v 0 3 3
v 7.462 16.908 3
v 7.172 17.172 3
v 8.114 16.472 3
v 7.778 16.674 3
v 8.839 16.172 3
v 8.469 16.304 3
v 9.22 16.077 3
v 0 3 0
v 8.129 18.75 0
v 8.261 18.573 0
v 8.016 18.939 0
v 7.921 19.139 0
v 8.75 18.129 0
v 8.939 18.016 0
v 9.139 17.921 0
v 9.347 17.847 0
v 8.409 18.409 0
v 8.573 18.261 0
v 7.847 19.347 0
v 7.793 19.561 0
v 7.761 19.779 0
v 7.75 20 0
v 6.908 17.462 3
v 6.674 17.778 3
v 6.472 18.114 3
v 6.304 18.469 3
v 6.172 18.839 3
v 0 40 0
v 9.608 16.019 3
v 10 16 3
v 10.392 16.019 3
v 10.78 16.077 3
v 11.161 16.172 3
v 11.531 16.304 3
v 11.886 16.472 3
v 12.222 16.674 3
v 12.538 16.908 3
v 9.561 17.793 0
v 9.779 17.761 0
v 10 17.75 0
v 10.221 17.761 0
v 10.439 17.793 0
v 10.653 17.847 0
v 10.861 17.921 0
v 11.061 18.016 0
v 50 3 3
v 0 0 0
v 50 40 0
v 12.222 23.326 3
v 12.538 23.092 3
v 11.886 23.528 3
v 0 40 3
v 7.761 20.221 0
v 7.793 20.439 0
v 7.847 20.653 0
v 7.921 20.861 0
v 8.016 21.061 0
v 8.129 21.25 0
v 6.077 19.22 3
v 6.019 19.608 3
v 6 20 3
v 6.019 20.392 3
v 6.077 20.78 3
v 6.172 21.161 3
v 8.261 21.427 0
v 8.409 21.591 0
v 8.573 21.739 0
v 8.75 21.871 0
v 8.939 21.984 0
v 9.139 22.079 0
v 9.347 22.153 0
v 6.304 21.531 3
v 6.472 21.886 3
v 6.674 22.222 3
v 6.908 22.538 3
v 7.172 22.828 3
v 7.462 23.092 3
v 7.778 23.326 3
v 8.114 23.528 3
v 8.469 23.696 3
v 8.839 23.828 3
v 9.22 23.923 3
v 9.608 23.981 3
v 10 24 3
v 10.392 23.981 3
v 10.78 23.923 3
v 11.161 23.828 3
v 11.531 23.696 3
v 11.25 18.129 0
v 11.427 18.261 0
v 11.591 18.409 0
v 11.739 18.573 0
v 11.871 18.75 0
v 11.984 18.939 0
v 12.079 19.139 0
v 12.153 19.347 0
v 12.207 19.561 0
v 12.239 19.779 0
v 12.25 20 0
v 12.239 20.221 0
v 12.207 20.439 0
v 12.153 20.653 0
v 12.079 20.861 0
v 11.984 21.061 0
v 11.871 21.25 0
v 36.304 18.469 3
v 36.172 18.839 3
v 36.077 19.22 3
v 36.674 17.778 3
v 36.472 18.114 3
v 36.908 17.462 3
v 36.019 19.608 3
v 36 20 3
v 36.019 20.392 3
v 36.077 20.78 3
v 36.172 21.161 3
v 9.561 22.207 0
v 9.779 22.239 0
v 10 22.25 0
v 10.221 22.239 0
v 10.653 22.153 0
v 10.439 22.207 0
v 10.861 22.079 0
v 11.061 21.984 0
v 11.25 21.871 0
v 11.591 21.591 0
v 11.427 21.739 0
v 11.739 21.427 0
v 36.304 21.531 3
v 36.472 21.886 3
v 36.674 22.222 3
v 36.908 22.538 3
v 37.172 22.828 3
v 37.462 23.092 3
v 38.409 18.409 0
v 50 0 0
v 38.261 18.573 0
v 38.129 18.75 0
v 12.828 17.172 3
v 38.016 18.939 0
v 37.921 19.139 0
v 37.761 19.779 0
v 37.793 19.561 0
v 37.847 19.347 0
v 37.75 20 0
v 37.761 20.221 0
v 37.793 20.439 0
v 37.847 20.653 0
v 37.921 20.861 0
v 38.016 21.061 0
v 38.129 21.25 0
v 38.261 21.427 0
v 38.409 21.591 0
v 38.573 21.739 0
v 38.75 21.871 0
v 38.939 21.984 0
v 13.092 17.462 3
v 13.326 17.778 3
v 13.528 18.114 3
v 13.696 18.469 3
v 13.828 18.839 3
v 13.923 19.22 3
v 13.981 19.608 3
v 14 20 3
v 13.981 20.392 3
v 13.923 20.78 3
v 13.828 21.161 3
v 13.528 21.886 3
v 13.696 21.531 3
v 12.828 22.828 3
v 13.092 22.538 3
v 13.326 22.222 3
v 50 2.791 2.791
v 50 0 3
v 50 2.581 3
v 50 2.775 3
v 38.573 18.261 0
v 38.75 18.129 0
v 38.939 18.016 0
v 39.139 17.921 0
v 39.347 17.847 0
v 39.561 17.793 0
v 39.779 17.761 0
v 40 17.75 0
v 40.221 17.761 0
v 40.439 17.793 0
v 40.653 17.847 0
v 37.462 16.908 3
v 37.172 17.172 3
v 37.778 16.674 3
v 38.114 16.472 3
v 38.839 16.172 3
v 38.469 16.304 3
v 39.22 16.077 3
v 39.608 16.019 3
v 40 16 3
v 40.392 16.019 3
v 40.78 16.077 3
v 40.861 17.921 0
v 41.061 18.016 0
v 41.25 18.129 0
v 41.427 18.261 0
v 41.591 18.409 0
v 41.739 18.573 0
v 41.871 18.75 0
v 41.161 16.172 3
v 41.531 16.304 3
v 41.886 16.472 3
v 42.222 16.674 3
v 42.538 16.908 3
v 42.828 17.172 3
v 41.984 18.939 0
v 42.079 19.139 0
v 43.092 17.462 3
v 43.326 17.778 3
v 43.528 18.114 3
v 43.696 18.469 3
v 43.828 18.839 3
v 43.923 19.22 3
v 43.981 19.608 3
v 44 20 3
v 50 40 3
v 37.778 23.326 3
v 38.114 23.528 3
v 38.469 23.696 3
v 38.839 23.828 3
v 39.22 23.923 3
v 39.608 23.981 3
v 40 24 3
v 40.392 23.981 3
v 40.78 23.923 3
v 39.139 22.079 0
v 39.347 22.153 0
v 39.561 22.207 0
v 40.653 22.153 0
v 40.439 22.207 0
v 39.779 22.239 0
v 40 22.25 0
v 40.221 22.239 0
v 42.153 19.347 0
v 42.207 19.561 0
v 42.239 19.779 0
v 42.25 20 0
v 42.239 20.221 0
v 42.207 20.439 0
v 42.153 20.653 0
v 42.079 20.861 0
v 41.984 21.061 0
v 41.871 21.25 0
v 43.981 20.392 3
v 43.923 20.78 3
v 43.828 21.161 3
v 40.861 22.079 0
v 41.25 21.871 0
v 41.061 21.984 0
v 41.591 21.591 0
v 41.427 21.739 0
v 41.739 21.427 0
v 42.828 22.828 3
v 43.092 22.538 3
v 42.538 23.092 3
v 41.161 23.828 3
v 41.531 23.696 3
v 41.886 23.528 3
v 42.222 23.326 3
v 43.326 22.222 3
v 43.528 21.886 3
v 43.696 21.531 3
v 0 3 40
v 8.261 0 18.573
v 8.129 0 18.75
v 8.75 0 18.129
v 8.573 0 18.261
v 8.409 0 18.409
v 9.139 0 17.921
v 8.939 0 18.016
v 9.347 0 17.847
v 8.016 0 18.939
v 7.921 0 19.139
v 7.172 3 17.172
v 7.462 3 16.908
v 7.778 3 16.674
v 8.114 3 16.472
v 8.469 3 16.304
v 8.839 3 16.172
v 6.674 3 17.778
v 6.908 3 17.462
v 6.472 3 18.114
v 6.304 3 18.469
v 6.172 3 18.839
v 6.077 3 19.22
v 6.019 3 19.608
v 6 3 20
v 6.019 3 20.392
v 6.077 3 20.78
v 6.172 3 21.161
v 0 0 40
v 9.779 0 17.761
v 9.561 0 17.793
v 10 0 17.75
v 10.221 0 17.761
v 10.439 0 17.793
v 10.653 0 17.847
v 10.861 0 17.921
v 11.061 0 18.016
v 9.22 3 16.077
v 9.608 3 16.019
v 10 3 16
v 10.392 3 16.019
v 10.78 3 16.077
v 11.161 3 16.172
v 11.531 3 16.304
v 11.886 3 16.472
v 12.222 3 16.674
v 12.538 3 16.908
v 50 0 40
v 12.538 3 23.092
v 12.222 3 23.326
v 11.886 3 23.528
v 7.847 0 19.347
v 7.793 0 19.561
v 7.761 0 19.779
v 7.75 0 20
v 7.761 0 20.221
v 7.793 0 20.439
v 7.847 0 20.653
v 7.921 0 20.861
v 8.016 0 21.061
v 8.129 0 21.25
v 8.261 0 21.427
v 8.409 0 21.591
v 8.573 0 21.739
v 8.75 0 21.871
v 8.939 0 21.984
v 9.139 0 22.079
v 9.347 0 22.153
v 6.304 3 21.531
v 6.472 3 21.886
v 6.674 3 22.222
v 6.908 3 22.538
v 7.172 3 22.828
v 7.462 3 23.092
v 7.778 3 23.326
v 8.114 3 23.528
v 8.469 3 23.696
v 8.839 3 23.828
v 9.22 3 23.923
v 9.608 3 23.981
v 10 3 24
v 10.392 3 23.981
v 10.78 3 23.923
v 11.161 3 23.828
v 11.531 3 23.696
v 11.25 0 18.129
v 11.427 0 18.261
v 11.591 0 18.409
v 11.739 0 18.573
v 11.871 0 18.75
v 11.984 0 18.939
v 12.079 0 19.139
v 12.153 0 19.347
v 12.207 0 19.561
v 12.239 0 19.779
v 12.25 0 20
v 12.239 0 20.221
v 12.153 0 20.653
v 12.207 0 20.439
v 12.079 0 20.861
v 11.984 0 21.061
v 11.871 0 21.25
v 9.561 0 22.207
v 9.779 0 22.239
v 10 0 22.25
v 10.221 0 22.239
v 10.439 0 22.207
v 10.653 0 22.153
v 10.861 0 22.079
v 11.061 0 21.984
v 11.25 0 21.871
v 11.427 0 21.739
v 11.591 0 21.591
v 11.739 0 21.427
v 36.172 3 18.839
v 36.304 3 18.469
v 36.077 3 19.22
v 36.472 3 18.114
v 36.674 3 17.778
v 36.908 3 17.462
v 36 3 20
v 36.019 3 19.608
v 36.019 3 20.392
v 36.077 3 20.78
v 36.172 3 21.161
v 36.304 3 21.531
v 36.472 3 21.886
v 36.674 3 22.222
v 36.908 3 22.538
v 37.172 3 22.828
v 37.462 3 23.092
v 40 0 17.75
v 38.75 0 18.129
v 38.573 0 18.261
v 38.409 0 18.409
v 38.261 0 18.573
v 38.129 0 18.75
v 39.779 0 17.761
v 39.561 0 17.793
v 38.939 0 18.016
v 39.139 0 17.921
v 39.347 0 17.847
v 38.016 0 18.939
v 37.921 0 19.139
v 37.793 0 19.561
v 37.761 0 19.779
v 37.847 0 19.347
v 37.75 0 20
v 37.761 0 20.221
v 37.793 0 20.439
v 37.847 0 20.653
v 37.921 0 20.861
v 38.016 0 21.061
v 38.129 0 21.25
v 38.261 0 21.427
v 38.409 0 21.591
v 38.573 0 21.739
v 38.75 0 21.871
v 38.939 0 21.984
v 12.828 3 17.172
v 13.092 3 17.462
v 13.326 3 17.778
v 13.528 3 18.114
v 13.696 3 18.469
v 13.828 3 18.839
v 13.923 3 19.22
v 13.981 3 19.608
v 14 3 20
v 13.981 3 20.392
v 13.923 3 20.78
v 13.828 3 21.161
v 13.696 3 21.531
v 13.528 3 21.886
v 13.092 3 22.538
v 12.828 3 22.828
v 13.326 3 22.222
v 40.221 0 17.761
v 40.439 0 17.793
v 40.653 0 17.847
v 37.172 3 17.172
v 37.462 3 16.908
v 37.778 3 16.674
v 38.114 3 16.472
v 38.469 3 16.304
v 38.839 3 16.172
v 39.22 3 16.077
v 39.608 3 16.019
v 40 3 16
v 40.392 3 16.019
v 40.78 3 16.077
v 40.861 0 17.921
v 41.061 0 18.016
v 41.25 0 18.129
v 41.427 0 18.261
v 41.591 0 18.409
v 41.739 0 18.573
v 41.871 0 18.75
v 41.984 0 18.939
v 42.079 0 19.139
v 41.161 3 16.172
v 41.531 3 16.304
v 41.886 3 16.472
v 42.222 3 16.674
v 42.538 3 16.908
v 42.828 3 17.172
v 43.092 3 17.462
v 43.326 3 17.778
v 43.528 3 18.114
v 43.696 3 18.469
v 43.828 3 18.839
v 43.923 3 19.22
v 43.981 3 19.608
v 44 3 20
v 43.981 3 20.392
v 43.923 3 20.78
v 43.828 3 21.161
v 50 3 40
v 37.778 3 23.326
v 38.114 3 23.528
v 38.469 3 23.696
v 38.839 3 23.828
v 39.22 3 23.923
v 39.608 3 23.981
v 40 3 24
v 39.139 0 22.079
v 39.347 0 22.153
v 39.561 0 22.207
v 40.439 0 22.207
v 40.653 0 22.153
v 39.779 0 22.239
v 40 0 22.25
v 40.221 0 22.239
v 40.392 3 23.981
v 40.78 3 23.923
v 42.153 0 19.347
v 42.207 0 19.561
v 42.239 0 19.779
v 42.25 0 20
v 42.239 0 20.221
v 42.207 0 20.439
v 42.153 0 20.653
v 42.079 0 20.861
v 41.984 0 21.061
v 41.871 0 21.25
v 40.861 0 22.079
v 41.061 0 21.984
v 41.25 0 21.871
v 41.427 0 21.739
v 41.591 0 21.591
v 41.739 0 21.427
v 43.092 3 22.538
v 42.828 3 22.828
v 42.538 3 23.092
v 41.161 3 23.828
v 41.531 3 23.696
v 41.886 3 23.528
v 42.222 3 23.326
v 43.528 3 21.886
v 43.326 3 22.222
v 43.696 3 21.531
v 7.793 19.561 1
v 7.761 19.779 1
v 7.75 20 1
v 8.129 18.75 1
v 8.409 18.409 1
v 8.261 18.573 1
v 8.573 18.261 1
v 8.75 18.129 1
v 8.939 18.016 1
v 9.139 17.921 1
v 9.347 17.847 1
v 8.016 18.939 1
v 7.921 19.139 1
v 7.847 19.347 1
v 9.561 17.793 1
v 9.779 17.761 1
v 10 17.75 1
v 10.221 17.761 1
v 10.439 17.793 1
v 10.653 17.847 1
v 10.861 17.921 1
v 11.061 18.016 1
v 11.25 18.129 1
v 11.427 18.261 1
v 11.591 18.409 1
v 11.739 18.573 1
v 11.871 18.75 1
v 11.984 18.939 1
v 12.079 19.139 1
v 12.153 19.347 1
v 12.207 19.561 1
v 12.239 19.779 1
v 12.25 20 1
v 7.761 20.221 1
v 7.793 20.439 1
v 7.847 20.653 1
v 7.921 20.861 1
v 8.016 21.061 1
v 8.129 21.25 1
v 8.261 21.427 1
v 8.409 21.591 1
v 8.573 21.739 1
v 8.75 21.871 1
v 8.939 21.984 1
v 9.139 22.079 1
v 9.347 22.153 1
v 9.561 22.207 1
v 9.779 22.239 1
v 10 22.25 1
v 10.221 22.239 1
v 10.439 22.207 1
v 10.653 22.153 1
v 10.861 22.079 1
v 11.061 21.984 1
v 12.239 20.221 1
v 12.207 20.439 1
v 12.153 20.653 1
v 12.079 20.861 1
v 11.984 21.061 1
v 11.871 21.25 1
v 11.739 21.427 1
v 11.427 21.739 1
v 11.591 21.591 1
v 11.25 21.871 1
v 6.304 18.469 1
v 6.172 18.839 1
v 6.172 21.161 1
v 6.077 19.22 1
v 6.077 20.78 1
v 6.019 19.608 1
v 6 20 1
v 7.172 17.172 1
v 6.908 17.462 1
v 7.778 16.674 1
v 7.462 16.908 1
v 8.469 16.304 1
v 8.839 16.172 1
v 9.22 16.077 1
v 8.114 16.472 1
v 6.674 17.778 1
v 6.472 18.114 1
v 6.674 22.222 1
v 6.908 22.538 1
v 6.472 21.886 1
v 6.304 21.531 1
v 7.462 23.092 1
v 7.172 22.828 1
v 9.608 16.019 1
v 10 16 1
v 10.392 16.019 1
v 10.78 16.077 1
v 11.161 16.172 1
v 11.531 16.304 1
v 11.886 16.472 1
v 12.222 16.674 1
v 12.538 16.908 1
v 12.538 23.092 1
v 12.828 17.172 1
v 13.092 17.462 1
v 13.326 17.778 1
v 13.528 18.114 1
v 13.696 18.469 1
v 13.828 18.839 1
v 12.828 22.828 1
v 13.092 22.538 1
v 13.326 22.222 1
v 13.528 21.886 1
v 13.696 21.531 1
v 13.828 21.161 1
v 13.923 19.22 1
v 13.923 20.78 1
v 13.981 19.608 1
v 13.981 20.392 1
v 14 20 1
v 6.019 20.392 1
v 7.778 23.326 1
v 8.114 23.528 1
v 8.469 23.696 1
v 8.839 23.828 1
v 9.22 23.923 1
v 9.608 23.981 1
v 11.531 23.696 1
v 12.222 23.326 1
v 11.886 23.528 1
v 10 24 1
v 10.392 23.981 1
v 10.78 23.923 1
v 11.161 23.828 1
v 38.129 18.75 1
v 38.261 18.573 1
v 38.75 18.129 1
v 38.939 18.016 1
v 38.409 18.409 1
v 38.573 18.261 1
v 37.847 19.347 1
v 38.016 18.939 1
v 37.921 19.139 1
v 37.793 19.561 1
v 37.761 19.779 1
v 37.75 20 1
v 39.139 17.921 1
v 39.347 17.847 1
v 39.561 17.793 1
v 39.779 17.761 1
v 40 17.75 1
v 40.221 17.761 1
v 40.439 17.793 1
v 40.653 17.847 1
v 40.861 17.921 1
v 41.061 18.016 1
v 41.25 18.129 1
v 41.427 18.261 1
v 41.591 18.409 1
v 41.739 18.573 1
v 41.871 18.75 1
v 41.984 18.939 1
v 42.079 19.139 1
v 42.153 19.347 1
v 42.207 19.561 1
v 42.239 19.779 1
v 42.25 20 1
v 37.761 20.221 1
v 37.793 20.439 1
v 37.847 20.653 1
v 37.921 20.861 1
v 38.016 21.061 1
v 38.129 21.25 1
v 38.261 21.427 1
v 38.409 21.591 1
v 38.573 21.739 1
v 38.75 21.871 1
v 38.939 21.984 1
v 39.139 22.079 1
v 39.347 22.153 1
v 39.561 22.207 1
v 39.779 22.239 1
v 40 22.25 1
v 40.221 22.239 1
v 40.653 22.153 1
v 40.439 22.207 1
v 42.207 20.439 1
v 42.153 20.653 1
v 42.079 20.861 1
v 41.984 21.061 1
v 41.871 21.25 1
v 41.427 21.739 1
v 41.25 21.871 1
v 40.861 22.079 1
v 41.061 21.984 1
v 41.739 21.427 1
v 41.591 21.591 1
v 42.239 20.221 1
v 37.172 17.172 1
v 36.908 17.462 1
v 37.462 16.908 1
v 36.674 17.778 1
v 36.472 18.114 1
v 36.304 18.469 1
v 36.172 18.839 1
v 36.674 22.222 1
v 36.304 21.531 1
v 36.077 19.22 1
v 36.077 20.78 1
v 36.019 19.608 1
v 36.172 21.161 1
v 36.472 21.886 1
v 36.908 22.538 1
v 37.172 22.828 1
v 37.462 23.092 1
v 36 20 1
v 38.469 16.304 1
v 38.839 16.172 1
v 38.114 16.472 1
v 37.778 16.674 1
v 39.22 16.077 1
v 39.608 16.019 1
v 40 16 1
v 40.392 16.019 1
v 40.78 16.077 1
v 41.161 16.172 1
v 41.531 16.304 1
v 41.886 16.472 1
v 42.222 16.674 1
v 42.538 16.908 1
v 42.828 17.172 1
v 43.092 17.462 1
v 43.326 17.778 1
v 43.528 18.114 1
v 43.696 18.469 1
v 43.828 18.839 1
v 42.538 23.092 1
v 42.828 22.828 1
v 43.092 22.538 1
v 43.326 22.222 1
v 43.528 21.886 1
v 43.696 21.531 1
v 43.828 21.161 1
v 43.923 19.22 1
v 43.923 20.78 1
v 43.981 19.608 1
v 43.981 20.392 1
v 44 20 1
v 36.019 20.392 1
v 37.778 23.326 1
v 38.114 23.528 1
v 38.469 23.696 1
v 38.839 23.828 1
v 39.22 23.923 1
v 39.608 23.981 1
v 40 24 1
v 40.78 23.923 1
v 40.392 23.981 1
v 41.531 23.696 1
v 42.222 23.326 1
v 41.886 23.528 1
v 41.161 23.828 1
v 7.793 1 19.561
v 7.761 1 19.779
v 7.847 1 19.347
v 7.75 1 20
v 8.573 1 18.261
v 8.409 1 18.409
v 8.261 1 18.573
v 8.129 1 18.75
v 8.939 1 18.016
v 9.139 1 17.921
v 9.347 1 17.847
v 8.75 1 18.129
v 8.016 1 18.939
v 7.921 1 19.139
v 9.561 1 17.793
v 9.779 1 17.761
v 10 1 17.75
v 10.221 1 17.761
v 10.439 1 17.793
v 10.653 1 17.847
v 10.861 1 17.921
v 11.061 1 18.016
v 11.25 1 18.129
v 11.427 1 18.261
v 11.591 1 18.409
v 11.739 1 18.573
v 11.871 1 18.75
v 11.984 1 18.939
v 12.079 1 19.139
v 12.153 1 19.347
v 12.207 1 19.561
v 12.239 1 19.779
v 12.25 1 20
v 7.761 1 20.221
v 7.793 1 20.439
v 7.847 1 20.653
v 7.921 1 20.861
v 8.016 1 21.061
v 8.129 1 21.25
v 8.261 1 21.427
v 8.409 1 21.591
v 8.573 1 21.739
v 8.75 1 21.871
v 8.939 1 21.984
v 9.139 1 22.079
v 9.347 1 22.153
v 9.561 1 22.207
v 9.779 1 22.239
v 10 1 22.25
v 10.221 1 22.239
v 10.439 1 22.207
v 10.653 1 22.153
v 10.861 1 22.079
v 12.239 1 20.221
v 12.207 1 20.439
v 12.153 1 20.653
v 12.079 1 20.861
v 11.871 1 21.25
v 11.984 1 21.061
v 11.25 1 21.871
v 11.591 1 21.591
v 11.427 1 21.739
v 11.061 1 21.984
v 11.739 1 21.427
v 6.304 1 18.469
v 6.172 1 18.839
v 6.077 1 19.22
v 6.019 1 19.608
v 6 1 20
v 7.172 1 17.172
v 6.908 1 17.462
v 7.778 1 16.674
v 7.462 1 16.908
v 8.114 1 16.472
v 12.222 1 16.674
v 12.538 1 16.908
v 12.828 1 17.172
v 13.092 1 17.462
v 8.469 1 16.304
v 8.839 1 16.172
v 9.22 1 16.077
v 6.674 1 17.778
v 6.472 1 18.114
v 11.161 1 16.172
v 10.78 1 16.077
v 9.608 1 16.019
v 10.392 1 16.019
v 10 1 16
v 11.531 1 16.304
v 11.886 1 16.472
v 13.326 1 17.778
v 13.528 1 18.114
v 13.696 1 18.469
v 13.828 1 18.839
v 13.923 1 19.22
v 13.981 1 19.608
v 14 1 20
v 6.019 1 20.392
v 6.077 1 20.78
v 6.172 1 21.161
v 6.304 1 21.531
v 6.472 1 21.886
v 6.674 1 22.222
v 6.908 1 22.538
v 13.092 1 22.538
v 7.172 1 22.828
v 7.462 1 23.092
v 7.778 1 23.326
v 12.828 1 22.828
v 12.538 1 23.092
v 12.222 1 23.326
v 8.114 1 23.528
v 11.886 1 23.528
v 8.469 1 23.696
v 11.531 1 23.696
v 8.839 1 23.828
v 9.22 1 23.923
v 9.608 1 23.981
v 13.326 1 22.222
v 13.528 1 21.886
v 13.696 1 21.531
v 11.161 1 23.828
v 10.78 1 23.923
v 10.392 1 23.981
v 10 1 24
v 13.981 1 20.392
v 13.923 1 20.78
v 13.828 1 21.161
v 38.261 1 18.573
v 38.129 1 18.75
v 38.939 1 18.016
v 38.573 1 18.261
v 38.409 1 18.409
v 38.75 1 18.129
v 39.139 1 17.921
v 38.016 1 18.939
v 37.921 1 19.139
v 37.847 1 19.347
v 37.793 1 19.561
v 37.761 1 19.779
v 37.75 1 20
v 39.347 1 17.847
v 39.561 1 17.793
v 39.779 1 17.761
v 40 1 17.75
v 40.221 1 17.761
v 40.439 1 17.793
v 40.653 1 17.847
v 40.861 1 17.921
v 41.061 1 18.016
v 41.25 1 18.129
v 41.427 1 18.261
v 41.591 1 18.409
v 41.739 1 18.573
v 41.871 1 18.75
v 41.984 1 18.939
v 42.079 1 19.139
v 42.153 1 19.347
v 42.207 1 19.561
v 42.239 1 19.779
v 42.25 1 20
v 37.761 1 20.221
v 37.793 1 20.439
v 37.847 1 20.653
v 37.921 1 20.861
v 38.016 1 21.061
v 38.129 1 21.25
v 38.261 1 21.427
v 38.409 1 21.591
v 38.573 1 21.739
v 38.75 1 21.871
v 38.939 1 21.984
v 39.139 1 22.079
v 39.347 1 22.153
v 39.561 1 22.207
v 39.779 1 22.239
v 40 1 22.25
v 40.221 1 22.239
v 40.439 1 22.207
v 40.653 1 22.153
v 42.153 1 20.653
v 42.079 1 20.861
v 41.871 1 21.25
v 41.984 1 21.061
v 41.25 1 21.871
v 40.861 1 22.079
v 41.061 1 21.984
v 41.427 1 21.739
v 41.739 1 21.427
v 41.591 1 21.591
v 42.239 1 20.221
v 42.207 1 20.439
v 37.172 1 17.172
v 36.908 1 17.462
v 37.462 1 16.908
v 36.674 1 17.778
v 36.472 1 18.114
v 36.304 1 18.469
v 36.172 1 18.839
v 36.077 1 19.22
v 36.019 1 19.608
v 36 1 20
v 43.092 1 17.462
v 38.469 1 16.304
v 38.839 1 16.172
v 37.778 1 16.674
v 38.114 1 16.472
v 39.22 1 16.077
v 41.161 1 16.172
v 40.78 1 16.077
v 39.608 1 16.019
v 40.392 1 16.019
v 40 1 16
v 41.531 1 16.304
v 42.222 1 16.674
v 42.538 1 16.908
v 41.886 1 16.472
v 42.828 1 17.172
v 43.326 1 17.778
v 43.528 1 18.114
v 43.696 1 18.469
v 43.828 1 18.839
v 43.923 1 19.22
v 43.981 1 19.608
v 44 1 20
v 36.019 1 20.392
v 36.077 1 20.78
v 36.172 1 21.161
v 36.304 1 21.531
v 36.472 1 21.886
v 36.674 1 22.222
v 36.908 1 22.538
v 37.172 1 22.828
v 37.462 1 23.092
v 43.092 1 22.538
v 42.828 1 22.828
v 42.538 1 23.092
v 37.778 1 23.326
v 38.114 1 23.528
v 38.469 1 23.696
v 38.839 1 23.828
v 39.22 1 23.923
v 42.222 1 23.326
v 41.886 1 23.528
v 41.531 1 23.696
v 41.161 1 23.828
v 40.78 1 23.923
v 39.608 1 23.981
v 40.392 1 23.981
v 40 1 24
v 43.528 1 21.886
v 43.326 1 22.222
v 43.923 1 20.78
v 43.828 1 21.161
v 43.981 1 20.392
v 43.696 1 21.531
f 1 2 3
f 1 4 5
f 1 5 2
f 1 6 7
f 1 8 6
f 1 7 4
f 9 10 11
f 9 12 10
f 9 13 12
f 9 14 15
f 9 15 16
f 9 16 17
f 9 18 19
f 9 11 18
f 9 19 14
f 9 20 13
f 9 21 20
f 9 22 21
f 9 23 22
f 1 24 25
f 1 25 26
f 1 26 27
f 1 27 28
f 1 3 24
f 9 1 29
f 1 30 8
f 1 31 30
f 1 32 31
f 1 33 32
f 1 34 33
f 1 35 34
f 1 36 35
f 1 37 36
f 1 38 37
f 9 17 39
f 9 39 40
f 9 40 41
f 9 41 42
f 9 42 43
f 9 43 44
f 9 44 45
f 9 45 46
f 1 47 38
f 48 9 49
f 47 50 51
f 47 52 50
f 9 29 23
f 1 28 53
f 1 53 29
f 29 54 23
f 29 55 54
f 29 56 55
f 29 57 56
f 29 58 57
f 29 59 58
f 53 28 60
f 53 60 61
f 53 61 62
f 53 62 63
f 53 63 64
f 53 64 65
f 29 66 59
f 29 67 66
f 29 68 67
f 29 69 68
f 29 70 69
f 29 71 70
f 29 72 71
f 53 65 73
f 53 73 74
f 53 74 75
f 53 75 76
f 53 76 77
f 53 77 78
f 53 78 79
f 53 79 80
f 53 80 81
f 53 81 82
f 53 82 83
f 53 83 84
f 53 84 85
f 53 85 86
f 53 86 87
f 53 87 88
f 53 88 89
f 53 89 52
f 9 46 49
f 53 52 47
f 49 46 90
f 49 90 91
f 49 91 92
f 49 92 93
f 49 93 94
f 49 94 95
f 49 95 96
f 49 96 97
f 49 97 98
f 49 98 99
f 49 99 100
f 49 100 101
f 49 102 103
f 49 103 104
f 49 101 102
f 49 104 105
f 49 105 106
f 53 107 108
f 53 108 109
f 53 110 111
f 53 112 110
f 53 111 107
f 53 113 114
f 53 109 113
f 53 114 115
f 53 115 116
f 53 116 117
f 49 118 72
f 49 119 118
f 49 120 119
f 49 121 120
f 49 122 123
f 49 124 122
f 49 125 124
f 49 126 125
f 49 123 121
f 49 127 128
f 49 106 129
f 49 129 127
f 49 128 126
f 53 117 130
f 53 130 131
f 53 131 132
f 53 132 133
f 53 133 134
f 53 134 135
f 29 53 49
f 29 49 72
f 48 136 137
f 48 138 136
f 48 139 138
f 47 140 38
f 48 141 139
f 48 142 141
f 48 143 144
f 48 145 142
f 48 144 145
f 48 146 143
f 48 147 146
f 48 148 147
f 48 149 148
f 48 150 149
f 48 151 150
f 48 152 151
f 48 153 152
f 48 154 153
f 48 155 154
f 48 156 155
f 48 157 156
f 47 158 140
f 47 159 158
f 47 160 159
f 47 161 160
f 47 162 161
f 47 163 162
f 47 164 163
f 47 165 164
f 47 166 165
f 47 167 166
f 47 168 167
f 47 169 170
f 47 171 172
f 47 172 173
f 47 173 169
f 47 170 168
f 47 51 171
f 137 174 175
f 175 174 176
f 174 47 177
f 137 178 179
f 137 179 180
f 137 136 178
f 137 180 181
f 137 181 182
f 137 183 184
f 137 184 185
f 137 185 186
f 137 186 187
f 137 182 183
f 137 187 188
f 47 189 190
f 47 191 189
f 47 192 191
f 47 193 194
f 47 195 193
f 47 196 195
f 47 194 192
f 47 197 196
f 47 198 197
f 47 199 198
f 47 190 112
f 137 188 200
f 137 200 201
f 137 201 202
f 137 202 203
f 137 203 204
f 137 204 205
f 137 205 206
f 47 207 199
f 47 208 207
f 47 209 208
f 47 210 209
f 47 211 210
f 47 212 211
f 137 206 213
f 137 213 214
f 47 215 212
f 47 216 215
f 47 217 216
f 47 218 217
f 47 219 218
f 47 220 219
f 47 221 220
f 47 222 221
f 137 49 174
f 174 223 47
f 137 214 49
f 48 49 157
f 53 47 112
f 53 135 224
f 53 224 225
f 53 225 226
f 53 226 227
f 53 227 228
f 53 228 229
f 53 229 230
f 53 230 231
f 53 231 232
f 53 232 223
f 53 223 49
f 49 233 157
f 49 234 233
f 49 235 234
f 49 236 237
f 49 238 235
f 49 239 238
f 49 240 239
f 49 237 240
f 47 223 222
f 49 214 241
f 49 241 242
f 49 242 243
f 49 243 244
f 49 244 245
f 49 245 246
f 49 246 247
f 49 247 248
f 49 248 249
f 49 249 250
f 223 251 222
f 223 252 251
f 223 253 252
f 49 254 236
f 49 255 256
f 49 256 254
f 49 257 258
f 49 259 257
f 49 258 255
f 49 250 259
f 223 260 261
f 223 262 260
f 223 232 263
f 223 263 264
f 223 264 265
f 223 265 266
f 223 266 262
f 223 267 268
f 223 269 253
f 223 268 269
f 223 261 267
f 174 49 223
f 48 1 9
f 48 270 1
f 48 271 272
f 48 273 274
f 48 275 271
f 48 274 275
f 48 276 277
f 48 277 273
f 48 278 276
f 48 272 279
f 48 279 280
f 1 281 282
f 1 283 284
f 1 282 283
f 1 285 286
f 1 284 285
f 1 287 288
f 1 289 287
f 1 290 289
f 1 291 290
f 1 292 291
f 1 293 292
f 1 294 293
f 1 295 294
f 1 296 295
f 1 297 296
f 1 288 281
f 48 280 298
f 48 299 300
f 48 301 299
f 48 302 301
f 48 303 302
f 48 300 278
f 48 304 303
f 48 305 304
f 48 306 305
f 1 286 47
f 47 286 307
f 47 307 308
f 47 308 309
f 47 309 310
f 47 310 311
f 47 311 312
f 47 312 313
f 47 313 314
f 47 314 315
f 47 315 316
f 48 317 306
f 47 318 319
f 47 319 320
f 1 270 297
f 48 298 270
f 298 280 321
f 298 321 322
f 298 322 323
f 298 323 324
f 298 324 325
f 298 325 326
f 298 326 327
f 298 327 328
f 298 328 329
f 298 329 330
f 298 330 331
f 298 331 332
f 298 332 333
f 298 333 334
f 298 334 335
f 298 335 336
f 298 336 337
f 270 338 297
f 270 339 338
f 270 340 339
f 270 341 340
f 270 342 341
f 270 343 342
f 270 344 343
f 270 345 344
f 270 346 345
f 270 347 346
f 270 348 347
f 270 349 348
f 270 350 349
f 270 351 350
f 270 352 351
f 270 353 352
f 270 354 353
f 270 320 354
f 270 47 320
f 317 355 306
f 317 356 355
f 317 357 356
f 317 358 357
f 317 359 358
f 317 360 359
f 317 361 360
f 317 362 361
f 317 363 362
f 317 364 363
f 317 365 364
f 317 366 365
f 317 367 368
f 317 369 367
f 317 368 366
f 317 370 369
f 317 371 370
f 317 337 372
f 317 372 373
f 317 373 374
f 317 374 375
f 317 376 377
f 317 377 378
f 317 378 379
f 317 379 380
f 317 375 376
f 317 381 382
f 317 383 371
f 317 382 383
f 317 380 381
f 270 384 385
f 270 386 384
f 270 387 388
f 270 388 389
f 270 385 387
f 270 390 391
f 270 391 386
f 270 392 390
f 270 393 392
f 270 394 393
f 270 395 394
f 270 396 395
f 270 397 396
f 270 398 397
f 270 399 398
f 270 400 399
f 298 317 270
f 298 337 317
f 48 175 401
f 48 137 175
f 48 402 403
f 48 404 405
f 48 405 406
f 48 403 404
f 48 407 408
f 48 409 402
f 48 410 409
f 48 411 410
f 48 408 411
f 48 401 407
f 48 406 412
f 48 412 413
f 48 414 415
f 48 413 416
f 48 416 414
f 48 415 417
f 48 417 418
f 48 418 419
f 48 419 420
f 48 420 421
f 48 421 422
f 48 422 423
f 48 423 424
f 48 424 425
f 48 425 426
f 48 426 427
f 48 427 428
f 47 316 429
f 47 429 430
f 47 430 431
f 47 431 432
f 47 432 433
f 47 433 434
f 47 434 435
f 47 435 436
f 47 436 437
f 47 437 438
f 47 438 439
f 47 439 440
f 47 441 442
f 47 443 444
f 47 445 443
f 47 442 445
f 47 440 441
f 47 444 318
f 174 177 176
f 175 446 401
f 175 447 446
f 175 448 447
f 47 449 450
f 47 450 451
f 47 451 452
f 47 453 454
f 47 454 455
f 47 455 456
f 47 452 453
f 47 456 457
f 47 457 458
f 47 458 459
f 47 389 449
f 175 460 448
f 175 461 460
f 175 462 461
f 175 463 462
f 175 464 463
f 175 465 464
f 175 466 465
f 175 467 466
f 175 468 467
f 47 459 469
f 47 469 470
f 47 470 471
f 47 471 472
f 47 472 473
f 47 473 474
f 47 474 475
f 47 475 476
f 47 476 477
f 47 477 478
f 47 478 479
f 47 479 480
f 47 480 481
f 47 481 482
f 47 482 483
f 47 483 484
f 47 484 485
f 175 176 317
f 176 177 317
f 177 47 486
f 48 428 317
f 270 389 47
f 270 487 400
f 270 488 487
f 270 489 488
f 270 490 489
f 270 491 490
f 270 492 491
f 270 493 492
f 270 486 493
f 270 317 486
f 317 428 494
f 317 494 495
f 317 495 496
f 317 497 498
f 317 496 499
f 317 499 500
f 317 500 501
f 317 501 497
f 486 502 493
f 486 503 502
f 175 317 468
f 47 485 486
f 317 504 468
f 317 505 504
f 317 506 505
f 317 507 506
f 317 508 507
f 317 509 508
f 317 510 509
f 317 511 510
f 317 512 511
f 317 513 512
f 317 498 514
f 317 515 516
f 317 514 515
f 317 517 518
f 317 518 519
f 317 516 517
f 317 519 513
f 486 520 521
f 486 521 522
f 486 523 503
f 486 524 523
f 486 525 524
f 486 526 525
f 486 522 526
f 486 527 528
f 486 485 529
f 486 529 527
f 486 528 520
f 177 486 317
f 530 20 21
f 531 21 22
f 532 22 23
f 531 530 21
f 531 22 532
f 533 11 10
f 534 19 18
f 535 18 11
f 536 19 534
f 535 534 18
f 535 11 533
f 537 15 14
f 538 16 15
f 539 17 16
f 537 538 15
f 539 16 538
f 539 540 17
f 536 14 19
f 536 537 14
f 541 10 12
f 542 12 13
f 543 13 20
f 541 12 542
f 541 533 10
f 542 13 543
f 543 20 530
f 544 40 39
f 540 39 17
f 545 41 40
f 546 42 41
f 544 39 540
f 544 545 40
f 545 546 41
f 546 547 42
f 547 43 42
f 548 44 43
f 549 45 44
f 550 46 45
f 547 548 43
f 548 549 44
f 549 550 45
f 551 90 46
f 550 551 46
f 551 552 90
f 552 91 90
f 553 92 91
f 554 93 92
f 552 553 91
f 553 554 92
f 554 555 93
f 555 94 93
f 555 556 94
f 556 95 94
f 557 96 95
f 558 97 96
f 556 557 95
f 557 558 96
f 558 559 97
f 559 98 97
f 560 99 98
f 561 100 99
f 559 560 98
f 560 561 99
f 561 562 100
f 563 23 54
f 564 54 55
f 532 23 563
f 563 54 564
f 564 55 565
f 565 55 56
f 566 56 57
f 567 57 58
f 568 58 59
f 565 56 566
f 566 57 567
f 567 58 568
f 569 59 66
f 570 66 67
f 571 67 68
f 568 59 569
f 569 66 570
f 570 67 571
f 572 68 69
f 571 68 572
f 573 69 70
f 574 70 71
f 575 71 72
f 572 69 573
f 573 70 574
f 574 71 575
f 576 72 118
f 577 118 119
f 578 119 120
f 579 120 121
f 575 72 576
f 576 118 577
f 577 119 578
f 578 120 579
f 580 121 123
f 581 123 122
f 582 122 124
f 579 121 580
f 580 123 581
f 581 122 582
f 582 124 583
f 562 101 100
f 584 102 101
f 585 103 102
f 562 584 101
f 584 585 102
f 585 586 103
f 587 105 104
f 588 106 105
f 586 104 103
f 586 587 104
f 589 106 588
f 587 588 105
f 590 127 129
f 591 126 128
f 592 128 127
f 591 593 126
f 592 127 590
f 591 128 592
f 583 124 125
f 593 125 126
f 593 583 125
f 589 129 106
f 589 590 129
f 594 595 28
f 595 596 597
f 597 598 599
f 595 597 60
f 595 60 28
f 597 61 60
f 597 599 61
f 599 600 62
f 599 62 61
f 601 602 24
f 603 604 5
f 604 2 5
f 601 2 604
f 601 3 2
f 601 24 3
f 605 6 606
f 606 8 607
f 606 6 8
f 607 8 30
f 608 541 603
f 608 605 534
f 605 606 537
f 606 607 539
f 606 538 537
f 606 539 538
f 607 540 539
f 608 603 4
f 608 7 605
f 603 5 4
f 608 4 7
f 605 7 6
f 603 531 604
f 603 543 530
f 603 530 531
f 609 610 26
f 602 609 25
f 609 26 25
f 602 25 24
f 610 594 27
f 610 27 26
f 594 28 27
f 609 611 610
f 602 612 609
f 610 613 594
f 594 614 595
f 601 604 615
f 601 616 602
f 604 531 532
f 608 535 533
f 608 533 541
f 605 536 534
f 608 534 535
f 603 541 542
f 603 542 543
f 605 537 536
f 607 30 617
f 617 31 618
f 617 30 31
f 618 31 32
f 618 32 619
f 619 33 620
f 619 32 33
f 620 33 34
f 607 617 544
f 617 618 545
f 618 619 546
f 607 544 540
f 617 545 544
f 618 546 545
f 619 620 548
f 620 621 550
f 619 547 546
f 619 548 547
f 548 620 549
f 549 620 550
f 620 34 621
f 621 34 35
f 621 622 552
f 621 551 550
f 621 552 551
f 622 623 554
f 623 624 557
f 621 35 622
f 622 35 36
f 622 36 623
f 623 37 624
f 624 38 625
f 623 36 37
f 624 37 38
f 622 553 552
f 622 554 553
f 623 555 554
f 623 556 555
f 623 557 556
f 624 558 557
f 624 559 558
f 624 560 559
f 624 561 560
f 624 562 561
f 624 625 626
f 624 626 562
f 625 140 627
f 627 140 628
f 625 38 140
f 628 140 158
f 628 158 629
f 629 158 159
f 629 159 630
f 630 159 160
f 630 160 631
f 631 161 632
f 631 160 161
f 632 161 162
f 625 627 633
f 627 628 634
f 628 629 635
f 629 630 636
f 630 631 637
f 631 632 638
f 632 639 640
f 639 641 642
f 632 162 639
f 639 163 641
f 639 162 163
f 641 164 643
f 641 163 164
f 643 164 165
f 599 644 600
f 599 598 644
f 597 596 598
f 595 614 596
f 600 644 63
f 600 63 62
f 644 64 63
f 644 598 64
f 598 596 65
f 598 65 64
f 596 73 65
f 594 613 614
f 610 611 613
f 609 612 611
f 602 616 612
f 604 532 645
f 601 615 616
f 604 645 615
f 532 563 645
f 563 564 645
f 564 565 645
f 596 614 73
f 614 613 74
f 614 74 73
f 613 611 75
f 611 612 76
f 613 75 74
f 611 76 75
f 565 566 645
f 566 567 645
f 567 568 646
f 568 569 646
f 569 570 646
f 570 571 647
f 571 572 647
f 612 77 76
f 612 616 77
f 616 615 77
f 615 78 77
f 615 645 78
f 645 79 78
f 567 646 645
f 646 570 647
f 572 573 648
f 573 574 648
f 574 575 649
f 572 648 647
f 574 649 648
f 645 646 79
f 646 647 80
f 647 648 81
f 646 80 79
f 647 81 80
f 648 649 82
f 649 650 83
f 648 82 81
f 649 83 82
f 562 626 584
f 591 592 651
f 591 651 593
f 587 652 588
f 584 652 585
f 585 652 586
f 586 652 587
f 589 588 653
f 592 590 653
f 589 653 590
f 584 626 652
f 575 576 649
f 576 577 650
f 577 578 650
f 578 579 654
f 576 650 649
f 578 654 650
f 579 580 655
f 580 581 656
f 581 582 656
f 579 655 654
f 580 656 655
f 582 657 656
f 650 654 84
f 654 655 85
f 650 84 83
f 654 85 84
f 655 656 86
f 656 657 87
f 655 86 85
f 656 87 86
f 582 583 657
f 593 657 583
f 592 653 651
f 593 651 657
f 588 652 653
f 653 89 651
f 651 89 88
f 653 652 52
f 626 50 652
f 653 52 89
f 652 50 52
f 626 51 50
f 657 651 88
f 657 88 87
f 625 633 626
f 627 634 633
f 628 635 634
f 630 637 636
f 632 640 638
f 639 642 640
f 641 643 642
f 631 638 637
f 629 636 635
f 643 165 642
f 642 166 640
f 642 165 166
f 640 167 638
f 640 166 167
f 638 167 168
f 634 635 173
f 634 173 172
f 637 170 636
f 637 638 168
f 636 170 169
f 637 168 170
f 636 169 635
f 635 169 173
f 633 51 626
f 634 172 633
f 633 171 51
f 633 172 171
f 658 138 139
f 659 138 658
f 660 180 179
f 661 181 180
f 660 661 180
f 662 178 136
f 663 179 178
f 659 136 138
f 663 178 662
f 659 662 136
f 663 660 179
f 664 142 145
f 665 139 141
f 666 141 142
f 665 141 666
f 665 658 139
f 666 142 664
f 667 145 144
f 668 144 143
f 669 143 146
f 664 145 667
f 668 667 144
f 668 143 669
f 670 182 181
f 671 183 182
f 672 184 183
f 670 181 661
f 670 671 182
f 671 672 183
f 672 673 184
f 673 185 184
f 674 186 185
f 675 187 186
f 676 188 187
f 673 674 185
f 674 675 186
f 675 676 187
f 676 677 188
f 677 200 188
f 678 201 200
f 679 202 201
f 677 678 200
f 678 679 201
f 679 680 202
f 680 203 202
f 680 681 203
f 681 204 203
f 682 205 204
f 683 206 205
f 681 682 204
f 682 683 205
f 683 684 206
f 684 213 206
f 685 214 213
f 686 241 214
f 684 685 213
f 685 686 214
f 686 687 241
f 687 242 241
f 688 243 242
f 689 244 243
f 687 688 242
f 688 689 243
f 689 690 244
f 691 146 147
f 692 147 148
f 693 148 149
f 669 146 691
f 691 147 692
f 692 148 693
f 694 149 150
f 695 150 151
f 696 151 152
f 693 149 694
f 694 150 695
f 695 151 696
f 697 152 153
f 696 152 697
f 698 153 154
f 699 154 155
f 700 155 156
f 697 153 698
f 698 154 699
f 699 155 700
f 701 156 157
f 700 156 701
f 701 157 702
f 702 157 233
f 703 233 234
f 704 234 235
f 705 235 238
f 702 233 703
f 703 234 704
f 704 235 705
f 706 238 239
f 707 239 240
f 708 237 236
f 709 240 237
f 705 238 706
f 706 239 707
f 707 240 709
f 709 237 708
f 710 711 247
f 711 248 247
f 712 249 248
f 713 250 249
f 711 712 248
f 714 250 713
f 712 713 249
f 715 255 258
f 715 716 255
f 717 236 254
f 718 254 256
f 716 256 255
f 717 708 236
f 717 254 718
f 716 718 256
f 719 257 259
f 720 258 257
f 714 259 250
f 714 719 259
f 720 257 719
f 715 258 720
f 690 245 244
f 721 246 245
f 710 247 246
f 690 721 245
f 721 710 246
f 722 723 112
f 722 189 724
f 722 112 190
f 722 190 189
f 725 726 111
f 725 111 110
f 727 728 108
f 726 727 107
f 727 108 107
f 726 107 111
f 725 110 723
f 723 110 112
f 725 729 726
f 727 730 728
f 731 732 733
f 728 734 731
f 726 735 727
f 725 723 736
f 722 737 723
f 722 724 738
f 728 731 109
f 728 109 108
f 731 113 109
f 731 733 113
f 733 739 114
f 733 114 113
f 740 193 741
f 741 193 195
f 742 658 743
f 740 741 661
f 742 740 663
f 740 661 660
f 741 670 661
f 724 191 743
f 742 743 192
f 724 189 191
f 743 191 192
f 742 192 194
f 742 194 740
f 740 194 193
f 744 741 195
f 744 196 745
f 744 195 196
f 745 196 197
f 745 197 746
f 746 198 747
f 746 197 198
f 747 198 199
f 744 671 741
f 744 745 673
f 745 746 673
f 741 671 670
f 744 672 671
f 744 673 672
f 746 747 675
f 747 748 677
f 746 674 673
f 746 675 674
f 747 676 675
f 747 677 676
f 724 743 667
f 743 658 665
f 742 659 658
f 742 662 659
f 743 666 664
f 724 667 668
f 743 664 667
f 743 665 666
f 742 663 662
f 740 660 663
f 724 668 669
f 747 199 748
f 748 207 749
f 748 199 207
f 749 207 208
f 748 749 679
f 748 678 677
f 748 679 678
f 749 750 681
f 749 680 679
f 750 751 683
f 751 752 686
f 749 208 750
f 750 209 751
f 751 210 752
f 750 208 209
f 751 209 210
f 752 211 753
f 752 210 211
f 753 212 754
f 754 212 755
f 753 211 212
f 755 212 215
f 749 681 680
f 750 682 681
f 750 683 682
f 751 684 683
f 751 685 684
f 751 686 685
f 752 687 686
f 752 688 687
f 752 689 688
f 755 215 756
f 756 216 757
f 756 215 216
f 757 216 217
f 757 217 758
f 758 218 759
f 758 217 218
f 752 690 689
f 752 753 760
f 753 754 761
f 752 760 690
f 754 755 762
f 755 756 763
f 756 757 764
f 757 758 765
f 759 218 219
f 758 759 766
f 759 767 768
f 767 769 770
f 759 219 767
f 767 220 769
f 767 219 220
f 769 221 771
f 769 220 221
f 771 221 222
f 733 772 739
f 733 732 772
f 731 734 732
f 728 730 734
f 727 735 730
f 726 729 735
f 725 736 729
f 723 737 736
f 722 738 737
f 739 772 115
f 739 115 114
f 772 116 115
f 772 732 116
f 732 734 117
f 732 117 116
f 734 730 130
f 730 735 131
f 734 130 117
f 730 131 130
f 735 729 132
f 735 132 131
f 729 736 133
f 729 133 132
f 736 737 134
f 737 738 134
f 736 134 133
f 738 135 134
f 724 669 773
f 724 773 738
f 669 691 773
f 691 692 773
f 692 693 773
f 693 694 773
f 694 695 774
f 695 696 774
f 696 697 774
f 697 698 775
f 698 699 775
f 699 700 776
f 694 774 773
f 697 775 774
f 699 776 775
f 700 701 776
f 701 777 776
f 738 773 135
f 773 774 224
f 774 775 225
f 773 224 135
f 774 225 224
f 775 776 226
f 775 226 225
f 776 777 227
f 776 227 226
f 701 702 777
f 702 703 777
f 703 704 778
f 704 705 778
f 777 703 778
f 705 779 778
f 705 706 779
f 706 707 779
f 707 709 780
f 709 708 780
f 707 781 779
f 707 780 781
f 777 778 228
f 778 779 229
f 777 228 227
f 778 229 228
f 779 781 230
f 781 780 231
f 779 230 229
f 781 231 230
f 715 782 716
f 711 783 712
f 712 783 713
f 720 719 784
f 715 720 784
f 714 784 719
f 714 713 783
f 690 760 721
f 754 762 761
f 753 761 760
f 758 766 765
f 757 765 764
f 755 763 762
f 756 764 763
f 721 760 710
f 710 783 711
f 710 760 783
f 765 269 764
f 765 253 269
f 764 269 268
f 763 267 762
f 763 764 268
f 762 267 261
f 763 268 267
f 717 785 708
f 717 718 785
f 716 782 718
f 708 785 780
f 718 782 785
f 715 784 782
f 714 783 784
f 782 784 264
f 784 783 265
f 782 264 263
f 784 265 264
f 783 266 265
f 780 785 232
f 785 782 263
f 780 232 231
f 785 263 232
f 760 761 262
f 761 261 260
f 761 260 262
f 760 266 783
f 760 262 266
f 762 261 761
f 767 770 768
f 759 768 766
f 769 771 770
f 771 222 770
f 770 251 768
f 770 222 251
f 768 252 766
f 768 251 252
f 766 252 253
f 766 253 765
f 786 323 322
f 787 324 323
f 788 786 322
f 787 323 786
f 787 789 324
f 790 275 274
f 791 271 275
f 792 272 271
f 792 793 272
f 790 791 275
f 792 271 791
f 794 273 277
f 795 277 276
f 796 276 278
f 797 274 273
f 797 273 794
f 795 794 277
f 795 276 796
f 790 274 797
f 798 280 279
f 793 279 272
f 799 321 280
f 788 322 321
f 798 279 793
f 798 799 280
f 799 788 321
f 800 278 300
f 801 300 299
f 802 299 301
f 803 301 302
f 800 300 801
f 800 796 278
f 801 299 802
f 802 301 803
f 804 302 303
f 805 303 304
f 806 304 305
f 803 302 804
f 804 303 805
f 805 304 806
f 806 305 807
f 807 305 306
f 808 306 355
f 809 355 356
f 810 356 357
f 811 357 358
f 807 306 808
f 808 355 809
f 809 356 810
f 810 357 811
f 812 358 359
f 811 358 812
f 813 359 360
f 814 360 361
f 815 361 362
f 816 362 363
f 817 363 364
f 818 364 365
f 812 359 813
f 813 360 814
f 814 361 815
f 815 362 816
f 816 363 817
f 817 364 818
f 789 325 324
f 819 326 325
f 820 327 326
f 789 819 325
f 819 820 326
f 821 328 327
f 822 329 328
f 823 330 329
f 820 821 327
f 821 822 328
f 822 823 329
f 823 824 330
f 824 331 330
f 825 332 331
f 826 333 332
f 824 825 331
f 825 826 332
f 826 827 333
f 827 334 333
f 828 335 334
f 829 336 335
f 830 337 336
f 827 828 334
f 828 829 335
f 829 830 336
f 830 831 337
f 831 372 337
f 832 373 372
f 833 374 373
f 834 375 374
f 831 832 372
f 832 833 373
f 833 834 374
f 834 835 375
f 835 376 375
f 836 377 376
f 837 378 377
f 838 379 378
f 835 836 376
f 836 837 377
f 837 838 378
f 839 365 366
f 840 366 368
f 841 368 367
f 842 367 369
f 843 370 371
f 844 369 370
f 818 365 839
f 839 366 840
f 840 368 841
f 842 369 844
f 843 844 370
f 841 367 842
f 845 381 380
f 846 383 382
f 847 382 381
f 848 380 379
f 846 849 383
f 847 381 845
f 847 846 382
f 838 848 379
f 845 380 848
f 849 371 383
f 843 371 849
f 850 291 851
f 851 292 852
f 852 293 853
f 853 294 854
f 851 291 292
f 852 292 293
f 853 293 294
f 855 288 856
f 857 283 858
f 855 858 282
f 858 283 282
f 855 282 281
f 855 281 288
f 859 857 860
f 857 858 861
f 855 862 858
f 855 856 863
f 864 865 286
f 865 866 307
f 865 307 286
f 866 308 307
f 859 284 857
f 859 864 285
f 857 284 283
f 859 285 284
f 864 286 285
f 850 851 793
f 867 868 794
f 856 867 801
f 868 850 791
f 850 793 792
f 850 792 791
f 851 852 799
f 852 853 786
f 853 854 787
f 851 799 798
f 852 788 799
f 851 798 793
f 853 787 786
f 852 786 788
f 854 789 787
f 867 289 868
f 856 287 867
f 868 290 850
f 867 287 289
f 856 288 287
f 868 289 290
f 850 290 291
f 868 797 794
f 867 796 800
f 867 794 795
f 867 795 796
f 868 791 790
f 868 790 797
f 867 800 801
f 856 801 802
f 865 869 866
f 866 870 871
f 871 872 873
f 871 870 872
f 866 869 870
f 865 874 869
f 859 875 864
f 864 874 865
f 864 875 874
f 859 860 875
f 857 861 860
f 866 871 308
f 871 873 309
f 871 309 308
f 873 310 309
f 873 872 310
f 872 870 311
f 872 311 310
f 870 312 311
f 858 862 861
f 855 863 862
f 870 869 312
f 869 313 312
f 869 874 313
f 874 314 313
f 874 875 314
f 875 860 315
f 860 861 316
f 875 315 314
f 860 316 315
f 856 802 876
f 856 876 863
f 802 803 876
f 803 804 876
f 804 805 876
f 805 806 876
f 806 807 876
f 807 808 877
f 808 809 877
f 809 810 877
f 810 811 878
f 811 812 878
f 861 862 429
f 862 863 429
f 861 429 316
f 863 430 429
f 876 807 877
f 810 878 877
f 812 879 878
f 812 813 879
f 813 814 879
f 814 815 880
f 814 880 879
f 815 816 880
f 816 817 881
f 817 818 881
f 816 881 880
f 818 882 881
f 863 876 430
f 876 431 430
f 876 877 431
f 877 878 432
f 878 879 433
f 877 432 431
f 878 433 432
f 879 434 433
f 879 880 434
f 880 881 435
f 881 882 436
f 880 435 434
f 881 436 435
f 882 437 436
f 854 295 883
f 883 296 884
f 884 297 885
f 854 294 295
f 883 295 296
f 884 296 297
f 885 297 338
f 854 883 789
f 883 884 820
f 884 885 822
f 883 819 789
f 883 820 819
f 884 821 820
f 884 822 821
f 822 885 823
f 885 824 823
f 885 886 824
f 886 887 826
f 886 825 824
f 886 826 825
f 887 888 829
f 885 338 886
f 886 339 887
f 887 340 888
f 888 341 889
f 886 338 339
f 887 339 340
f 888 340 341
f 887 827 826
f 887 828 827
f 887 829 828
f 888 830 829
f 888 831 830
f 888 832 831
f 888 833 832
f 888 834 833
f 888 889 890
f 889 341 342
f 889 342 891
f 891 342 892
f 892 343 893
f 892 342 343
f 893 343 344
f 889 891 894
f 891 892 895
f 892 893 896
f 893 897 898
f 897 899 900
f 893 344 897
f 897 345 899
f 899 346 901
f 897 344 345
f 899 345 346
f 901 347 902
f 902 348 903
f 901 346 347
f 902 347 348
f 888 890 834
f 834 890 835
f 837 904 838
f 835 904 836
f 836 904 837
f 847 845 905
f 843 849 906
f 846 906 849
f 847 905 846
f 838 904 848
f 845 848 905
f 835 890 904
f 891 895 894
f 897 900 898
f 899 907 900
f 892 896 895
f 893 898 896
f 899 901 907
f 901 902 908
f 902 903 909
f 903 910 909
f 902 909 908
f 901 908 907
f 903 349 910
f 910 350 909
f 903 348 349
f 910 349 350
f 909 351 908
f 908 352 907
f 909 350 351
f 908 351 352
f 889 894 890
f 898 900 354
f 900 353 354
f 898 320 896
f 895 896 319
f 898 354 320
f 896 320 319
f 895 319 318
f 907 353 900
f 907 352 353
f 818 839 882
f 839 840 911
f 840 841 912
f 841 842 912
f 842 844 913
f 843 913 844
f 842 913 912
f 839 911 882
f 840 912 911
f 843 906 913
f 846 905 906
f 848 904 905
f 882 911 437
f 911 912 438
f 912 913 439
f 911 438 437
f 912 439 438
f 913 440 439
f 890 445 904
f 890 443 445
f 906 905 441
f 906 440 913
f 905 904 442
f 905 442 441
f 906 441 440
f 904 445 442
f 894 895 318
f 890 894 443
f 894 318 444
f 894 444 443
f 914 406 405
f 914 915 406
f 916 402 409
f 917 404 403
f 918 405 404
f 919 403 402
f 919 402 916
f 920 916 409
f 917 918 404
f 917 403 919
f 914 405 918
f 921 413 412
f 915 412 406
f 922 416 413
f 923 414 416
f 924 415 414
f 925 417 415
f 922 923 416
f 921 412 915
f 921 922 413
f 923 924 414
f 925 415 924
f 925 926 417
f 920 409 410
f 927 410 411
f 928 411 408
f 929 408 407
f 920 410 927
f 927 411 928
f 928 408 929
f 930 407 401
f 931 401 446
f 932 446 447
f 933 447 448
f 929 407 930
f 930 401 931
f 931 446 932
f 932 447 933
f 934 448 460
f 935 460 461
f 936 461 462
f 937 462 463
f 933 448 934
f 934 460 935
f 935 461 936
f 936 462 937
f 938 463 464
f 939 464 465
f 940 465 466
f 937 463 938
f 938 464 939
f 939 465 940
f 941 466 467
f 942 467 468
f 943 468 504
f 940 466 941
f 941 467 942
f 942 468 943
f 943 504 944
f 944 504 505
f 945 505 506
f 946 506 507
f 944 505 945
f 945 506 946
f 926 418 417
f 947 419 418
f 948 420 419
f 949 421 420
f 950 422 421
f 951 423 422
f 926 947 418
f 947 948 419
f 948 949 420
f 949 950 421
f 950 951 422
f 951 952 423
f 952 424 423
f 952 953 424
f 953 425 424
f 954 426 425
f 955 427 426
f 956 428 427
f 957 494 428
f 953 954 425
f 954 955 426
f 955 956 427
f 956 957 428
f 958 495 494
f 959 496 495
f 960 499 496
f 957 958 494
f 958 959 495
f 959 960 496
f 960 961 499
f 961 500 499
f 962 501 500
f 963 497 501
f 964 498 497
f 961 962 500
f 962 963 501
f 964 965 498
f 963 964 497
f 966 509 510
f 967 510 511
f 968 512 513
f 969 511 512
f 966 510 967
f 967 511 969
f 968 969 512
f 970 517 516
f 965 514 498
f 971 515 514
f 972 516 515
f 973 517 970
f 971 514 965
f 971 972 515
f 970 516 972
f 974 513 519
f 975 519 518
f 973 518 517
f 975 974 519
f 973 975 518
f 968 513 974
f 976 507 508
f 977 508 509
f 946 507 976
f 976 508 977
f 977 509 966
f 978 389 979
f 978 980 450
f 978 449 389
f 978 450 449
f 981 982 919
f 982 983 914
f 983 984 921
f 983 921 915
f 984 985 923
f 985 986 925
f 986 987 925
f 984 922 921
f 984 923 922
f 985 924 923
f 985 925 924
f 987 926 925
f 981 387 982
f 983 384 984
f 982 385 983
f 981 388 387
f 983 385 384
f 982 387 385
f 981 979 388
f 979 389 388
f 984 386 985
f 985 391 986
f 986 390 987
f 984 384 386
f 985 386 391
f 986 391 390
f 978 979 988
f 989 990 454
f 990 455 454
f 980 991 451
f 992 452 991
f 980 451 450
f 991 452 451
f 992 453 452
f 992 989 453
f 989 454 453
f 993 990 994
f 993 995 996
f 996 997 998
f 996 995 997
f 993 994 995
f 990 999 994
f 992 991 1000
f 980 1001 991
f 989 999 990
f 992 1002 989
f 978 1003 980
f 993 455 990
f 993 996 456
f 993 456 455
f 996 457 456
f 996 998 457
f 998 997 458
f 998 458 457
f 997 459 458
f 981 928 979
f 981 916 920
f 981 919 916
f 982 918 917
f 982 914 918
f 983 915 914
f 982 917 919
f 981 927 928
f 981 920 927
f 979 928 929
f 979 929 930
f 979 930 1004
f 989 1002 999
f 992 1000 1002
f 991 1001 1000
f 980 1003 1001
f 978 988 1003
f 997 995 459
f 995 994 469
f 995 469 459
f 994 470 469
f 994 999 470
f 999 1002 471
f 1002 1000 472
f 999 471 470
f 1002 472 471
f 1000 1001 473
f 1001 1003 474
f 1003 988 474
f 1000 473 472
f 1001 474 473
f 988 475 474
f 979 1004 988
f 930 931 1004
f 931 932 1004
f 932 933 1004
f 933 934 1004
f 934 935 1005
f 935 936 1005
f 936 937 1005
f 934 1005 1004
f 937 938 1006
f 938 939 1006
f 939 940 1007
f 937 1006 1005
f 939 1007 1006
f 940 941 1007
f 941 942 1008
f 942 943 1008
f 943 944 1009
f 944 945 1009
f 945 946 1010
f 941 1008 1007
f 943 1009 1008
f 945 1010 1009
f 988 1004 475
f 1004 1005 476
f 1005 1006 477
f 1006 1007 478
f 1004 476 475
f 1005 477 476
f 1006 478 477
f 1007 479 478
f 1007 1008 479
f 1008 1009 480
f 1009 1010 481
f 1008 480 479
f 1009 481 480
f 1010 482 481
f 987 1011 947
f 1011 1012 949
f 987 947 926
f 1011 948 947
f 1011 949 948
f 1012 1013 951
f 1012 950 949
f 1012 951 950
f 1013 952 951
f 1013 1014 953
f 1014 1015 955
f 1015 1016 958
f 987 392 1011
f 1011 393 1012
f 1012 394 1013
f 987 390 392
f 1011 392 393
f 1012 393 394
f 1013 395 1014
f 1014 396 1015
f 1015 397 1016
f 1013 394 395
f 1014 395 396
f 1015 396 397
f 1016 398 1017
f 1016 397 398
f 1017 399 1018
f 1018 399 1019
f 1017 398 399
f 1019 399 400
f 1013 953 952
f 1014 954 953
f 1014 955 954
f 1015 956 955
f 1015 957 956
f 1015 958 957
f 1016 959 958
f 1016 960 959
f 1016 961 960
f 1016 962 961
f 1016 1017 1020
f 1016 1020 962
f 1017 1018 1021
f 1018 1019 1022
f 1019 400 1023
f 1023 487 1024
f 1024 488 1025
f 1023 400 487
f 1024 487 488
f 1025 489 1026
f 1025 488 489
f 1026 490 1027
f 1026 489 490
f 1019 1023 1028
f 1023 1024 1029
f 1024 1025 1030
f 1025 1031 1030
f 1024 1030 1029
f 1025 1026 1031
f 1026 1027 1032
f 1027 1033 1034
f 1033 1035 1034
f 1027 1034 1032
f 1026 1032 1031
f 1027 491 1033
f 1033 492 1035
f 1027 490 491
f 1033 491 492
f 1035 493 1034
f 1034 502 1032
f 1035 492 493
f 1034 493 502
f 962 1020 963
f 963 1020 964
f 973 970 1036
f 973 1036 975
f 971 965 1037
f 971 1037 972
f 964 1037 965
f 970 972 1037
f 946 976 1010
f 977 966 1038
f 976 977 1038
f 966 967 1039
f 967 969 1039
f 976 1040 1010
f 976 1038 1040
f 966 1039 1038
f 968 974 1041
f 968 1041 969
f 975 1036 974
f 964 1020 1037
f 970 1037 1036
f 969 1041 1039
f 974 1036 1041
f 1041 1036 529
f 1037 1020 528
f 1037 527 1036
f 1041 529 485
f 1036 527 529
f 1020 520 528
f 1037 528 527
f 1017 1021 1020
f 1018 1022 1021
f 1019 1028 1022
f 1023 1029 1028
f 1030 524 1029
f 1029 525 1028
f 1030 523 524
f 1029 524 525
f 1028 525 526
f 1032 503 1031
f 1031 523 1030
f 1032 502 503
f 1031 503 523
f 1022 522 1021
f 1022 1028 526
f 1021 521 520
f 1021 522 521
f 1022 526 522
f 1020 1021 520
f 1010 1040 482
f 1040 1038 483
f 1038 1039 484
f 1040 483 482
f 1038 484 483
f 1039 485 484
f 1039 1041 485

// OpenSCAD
// L-bracket with counterbored holes
$fn = 64;

w = 50;          // width (X)
d = 40;          // depth of horizontal flange (Y)
h = 40;          // height of vertical flange (Z)
t = 3;           // thickness

hole_d = 4.5;    // through hole diameter
cbore_d = 8;     // counterbore diameter
cbore_h = 2;     // counterbore depth

side_offset = 10; // hole offset from side edges (X)
eps = 0.01;

module l_bracket() {
  difference() {
    // Solid L shape
    union() {
      // Horizontal flange (extends +Y, thickness along +Z)
      cube([w, d, t], center = false);
      // Vertical flange (extends +Z, thickness along +Y)
      cube([w, t, h], center = false);
    }

    // Holes in horizontal flange (axis along Z), counterbore on outer face (z = t)
    for (xpos = [side_offset, w - side_offset]) {
      translate([xpos, d/2, -eps]) cylinder(h = t + 2*eps, d = hole_d);
      translate([xpos, d/2, t - cbore_h]) cylinder(h = cbore_h, d = cbore_d);
    }

    // Holes in vertical flange (axis along Y), counterbore on outer face (y = t)
    for (xpos = [side_offset, w - side_offset]) {
      translate([xpos, -eps, h/2]) rotate([-90, 0, 0]) cylinder(h = t + 2*eps, d = hole_d);
      translate([xpos, t - cbore_h, h/2]) rotate([-90, 0, 0]) cylinder(h = cbore_h, d = cbore_d);
    }
  }
}

l_bracket();
